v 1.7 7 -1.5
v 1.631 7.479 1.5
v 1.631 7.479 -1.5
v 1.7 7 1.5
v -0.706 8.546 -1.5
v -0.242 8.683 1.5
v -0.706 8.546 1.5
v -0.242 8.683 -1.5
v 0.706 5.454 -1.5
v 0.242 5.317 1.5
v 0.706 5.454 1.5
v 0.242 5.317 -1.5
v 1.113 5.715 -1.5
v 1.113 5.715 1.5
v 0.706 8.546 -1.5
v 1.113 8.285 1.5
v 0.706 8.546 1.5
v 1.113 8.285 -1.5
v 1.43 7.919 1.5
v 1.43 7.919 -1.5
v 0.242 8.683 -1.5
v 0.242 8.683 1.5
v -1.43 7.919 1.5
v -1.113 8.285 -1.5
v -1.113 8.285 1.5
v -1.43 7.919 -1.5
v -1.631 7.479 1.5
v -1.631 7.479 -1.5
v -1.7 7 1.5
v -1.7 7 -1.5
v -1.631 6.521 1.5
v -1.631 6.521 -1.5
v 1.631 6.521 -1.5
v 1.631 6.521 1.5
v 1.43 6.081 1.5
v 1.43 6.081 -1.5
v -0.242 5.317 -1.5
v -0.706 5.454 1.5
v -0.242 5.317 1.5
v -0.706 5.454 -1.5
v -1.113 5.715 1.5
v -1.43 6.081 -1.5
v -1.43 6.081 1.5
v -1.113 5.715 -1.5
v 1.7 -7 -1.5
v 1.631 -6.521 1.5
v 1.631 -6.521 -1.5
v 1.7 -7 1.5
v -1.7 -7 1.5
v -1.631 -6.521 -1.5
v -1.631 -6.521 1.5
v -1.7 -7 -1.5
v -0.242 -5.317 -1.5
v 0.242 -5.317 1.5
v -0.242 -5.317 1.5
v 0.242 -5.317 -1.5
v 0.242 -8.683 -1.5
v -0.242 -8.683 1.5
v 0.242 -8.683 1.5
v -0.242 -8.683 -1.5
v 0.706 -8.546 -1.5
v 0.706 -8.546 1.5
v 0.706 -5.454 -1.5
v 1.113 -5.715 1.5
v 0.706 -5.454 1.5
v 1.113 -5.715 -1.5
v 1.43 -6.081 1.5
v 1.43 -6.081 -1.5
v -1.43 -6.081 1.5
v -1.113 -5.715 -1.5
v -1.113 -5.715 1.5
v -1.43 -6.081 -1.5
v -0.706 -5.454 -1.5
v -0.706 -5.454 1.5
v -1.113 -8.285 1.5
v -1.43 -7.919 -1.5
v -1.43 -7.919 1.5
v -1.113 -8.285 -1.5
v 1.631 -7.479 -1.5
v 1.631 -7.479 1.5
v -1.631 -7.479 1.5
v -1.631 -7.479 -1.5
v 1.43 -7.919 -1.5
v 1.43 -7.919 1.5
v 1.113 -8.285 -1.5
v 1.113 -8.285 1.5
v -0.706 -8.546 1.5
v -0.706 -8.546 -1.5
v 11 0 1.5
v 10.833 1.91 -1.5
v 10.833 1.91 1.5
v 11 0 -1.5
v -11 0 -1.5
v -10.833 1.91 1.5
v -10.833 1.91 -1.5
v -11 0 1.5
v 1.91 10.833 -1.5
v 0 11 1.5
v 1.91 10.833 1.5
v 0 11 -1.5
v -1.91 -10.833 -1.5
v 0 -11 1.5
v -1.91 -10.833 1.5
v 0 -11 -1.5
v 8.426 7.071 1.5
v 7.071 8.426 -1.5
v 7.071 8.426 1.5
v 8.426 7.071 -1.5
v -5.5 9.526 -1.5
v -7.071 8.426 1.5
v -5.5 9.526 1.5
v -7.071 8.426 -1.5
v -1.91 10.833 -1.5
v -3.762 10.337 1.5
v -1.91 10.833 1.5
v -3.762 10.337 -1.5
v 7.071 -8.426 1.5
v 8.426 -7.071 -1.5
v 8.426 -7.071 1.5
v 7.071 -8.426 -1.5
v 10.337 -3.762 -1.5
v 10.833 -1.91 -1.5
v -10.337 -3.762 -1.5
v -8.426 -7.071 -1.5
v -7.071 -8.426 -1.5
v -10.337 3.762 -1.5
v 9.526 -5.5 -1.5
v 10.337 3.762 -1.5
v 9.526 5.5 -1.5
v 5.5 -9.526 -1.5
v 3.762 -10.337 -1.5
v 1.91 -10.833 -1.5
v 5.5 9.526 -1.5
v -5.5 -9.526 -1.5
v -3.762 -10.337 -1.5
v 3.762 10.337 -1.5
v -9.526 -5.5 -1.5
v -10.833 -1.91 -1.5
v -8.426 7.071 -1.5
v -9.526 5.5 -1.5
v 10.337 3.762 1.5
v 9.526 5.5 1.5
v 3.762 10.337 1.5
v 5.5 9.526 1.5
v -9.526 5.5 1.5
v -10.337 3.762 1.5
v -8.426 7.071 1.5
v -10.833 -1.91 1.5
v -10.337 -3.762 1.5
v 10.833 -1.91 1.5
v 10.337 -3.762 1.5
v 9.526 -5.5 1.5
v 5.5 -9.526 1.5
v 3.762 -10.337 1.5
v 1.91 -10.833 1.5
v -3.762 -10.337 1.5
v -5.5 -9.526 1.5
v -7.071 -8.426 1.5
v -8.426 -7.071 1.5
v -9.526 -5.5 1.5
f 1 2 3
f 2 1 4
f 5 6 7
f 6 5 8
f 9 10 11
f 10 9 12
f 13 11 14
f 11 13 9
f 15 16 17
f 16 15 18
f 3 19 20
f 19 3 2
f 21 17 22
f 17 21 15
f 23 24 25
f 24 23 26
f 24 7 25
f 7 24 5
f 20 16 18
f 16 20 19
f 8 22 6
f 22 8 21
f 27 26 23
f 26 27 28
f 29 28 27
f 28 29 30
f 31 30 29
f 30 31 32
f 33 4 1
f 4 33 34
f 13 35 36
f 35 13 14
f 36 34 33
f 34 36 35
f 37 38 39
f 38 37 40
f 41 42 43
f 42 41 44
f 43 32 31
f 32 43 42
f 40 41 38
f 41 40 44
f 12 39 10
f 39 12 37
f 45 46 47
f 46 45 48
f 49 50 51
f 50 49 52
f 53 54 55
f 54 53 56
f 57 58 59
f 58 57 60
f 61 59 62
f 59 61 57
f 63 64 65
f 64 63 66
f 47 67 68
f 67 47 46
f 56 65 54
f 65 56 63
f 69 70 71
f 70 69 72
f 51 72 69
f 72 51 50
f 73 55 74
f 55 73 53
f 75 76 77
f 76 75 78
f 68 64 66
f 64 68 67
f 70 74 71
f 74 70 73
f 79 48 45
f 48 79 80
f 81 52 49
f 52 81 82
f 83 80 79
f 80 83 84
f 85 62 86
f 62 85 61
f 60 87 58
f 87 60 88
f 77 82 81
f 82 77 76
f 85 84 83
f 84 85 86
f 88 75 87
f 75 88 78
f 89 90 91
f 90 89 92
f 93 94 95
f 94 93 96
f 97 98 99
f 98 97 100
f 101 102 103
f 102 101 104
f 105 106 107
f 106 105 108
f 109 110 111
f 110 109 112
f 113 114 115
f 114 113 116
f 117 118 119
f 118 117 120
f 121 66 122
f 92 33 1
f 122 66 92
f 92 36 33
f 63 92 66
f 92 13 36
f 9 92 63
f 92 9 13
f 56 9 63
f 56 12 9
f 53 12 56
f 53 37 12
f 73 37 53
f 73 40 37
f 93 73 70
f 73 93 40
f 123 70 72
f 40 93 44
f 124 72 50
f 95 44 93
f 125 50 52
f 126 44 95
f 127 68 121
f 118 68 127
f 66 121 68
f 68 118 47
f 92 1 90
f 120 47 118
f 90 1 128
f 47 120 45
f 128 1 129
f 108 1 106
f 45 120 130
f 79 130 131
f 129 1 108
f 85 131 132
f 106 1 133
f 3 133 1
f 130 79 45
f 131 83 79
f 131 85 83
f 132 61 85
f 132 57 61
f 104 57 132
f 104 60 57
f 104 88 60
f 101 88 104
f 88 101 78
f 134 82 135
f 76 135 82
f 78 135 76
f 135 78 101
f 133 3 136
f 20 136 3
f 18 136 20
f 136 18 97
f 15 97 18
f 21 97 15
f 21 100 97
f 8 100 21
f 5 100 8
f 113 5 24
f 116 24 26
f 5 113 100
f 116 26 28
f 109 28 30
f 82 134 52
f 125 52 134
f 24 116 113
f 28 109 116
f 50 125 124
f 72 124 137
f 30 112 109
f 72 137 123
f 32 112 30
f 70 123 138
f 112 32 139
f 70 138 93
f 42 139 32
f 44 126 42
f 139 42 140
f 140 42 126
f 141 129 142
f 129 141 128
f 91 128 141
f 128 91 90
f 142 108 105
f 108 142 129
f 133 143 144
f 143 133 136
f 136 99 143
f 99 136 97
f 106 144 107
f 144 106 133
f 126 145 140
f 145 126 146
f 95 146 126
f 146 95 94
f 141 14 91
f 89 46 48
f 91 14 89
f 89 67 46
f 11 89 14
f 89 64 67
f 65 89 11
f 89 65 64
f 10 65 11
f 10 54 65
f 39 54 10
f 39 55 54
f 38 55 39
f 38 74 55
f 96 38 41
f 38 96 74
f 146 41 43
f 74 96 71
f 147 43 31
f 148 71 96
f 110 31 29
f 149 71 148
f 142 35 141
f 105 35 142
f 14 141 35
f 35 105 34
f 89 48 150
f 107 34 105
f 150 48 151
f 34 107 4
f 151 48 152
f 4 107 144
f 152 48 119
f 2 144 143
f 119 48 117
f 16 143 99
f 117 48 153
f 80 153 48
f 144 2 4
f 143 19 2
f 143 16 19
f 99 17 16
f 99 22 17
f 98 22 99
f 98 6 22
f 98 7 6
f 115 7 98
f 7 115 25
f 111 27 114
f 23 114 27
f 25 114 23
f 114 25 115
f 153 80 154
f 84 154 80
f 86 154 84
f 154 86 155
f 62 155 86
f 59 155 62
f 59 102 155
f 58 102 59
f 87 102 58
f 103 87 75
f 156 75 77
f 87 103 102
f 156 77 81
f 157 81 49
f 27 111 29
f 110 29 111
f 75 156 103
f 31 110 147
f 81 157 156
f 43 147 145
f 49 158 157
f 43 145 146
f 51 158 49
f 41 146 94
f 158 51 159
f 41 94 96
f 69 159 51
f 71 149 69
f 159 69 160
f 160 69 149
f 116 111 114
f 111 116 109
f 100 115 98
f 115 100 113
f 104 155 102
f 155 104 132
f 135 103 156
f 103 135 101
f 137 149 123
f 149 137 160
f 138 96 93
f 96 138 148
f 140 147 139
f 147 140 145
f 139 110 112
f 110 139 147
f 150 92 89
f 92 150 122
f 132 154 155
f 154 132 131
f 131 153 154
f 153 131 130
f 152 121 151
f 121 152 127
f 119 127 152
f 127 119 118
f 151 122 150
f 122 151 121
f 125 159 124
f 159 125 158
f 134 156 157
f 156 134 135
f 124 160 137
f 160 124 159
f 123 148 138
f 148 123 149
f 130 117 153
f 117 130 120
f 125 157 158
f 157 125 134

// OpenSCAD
$fa=10; $fs=0.5;

difference(){
    
       cylinder(h=3, r=11, center=true);
    
    union(){
        translate([0,7,0]) cylinder(h=3.01, r=1.7, center=true); 
        translate([0,-7,0]) cylinder(h=3.01, r=1.7, center=true);
    }
}
